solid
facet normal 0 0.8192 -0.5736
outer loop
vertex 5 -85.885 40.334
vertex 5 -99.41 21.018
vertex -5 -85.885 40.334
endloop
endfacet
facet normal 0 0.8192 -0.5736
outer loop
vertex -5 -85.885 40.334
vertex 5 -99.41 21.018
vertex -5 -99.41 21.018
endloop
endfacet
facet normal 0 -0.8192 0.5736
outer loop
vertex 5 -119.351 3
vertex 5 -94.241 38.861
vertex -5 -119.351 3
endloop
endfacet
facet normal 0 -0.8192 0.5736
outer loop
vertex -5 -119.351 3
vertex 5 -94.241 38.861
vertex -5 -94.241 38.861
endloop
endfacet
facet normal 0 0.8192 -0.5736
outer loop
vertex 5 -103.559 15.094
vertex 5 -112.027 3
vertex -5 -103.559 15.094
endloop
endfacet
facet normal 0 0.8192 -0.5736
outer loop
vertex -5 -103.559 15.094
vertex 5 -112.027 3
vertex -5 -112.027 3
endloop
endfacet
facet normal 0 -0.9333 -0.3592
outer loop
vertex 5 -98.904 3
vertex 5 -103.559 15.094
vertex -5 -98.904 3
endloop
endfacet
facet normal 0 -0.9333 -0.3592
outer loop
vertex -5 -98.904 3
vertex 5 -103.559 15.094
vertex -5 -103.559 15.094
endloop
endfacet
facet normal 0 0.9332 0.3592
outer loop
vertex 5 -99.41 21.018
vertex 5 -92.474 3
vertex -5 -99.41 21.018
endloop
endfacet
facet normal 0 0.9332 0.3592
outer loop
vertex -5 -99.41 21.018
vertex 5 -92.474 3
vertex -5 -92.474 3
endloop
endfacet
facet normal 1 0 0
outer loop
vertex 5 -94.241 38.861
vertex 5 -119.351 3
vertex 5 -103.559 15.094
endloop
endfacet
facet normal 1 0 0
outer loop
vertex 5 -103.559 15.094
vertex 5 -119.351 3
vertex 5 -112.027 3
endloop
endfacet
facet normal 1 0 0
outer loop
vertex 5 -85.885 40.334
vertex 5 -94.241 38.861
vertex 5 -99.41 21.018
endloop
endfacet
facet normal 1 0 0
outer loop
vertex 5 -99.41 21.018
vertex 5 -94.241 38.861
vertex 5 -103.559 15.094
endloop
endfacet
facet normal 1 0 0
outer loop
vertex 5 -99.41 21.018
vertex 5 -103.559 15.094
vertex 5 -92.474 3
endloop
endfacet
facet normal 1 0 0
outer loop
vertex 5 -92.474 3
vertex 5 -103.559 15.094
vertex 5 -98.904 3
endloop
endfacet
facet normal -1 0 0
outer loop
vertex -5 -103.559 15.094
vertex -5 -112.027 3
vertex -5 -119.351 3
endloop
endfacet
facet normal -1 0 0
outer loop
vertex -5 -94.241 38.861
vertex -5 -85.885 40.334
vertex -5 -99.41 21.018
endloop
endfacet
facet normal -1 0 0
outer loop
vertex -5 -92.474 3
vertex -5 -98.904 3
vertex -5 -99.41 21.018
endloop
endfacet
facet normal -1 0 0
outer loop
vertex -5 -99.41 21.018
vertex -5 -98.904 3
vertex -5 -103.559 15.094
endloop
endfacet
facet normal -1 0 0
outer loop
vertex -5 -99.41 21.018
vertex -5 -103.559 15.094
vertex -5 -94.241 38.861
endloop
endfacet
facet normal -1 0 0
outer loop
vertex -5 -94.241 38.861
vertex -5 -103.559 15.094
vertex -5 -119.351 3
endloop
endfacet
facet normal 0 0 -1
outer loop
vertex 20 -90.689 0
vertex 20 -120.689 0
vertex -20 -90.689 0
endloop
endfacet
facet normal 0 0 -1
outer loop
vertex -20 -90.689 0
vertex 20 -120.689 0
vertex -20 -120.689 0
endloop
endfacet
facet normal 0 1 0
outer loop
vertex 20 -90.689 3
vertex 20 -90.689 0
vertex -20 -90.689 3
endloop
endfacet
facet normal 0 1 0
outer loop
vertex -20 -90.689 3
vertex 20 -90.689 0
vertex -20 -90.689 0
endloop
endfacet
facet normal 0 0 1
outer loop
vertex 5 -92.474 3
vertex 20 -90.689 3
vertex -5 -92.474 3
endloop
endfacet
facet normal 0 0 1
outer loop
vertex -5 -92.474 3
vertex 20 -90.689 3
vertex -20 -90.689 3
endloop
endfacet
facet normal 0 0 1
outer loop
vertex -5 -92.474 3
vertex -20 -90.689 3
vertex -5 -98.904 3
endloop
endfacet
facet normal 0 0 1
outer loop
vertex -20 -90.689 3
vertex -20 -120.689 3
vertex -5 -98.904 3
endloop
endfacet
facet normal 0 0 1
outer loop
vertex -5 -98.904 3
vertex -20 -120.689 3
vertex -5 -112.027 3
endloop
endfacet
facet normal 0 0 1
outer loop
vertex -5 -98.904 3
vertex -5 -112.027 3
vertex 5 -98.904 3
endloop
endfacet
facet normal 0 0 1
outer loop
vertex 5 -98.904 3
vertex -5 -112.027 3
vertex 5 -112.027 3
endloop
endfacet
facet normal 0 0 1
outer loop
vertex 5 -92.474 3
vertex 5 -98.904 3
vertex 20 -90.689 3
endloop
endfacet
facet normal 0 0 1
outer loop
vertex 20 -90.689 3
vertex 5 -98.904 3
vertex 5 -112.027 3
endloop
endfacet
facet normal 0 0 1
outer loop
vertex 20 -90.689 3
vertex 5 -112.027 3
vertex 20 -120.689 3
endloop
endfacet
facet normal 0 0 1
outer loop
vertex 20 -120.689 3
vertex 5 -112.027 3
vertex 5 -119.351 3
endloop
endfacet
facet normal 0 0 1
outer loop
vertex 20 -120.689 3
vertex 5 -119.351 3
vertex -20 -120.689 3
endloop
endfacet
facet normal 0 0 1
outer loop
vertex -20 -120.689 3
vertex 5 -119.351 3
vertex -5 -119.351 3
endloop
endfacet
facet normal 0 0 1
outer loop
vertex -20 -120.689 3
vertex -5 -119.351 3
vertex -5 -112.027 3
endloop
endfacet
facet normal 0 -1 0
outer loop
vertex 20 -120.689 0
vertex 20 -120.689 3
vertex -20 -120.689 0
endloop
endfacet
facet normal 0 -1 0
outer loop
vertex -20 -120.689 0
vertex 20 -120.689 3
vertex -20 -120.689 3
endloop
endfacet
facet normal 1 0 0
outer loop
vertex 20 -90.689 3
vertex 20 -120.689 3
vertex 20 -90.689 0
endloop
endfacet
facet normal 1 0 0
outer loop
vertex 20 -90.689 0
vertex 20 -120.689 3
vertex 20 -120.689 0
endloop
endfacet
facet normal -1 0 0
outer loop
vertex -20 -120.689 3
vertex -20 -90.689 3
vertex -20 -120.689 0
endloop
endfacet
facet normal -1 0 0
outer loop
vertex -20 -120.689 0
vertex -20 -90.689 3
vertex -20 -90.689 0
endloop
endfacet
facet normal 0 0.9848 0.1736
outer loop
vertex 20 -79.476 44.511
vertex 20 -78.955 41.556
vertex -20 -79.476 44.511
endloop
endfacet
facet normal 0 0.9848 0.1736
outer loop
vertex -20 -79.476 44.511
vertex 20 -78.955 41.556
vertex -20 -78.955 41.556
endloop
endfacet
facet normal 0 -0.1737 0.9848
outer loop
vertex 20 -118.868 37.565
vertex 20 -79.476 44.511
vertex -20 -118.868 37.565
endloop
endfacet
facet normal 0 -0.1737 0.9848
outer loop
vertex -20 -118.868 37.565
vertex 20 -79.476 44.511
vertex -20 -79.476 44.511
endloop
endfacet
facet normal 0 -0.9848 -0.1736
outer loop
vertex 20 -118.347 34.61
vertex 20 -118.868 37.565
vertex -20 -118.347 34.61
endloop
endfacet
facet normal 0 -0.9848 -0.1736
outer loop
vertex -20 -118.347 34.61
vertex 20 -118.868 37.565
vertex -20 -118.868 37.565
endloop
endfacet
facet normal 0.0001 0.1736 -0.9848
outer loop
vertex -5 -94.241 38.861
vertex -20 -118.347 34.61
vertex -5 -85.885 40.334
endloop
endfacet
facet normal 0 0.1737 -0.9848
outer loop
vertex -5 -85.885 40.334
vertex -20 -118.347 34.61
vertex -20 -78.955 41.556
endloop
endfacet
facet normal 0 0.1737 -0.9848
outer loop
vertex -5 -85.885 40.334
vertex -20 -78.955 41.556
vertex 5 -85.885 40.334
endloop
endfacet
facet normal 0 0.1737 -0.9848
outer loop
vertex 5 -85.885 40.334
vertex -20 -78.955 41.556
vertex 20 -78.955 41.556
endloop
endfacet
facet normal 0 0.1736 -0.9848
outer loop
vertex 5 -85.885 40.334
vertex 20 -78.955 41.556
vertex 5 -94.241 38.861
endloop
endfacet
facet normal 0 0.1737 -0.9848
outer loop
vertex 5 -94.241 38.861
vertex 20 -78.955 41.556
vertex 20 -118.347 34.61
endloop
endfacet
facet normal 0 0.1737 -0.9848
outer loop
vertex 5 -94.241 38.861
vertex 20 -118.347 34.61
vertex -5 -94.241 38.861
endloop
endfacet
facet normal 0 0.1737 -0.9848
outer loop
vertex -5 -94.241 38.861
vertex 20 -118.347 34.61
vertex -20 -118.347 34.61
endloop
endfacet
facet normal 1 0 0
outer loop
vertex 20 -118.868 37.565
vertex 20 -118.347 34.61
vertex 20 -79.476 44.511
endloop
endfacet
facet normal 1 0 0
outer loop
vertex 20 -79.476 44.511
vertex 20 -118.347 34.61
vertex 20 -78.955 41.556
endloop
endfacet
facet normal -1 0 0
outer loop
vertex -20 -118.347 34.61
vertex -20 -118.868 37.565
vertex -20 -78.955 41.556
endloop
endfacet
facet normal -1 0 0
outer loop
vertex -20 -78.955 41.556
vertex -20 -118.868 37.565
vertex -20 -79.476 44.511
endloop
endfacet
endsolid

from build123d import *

# Parameters (mm, degrees)
BOSS_EXTRUDE1_DEPTH = 5
SKETCH3_W           = 3
SKETCH3_H           = 30
BOSS_EXTRUDE2_DEPTH = 20


with BuildPart() as part:
    # Sketch2 → Boss-Extrude1 (new, symmetric)
    with BuildSketch(Plane(origin=(0, 0, 0), x_dir=(0, 0, -1), z_dir=(1, 0, 0))):
        Polygon((-3, -98.903535581), (-3, -92.474380652), (-21.018302161, -99.410083352), (-40.334338568, -85.884849051), (-38.860884921, -94.241219935), (-3, -119.351281883), (-3, -112.02663435), (-15.093539832, -103.558646596), align=None)
    extrude(amount=BOSS_EXTRUDE1_DEPTH, both=True)

    # Sketch3 → Boss-Extrude2 (add, symmetric)
    with BuildSketch(Plane(origin=(0, 0, 0), x_dir=(0, 0, -1), z_dir=(1, 0, 0))):
        with Locations((-1.5, -105.688958117)):
            Rectangle(SKETCH3_W, SKETCH3_H)
        Polygon((-34.610334059, -118.34729176), (-41.556261166, -78.95498164), (-44.510684425, -79.475926173), (-37.564757318, -118.868236293), align=None)
    extrude(amount=BOSS_EXTRUDE2_DEPTH, both=True)


solid = part.part
